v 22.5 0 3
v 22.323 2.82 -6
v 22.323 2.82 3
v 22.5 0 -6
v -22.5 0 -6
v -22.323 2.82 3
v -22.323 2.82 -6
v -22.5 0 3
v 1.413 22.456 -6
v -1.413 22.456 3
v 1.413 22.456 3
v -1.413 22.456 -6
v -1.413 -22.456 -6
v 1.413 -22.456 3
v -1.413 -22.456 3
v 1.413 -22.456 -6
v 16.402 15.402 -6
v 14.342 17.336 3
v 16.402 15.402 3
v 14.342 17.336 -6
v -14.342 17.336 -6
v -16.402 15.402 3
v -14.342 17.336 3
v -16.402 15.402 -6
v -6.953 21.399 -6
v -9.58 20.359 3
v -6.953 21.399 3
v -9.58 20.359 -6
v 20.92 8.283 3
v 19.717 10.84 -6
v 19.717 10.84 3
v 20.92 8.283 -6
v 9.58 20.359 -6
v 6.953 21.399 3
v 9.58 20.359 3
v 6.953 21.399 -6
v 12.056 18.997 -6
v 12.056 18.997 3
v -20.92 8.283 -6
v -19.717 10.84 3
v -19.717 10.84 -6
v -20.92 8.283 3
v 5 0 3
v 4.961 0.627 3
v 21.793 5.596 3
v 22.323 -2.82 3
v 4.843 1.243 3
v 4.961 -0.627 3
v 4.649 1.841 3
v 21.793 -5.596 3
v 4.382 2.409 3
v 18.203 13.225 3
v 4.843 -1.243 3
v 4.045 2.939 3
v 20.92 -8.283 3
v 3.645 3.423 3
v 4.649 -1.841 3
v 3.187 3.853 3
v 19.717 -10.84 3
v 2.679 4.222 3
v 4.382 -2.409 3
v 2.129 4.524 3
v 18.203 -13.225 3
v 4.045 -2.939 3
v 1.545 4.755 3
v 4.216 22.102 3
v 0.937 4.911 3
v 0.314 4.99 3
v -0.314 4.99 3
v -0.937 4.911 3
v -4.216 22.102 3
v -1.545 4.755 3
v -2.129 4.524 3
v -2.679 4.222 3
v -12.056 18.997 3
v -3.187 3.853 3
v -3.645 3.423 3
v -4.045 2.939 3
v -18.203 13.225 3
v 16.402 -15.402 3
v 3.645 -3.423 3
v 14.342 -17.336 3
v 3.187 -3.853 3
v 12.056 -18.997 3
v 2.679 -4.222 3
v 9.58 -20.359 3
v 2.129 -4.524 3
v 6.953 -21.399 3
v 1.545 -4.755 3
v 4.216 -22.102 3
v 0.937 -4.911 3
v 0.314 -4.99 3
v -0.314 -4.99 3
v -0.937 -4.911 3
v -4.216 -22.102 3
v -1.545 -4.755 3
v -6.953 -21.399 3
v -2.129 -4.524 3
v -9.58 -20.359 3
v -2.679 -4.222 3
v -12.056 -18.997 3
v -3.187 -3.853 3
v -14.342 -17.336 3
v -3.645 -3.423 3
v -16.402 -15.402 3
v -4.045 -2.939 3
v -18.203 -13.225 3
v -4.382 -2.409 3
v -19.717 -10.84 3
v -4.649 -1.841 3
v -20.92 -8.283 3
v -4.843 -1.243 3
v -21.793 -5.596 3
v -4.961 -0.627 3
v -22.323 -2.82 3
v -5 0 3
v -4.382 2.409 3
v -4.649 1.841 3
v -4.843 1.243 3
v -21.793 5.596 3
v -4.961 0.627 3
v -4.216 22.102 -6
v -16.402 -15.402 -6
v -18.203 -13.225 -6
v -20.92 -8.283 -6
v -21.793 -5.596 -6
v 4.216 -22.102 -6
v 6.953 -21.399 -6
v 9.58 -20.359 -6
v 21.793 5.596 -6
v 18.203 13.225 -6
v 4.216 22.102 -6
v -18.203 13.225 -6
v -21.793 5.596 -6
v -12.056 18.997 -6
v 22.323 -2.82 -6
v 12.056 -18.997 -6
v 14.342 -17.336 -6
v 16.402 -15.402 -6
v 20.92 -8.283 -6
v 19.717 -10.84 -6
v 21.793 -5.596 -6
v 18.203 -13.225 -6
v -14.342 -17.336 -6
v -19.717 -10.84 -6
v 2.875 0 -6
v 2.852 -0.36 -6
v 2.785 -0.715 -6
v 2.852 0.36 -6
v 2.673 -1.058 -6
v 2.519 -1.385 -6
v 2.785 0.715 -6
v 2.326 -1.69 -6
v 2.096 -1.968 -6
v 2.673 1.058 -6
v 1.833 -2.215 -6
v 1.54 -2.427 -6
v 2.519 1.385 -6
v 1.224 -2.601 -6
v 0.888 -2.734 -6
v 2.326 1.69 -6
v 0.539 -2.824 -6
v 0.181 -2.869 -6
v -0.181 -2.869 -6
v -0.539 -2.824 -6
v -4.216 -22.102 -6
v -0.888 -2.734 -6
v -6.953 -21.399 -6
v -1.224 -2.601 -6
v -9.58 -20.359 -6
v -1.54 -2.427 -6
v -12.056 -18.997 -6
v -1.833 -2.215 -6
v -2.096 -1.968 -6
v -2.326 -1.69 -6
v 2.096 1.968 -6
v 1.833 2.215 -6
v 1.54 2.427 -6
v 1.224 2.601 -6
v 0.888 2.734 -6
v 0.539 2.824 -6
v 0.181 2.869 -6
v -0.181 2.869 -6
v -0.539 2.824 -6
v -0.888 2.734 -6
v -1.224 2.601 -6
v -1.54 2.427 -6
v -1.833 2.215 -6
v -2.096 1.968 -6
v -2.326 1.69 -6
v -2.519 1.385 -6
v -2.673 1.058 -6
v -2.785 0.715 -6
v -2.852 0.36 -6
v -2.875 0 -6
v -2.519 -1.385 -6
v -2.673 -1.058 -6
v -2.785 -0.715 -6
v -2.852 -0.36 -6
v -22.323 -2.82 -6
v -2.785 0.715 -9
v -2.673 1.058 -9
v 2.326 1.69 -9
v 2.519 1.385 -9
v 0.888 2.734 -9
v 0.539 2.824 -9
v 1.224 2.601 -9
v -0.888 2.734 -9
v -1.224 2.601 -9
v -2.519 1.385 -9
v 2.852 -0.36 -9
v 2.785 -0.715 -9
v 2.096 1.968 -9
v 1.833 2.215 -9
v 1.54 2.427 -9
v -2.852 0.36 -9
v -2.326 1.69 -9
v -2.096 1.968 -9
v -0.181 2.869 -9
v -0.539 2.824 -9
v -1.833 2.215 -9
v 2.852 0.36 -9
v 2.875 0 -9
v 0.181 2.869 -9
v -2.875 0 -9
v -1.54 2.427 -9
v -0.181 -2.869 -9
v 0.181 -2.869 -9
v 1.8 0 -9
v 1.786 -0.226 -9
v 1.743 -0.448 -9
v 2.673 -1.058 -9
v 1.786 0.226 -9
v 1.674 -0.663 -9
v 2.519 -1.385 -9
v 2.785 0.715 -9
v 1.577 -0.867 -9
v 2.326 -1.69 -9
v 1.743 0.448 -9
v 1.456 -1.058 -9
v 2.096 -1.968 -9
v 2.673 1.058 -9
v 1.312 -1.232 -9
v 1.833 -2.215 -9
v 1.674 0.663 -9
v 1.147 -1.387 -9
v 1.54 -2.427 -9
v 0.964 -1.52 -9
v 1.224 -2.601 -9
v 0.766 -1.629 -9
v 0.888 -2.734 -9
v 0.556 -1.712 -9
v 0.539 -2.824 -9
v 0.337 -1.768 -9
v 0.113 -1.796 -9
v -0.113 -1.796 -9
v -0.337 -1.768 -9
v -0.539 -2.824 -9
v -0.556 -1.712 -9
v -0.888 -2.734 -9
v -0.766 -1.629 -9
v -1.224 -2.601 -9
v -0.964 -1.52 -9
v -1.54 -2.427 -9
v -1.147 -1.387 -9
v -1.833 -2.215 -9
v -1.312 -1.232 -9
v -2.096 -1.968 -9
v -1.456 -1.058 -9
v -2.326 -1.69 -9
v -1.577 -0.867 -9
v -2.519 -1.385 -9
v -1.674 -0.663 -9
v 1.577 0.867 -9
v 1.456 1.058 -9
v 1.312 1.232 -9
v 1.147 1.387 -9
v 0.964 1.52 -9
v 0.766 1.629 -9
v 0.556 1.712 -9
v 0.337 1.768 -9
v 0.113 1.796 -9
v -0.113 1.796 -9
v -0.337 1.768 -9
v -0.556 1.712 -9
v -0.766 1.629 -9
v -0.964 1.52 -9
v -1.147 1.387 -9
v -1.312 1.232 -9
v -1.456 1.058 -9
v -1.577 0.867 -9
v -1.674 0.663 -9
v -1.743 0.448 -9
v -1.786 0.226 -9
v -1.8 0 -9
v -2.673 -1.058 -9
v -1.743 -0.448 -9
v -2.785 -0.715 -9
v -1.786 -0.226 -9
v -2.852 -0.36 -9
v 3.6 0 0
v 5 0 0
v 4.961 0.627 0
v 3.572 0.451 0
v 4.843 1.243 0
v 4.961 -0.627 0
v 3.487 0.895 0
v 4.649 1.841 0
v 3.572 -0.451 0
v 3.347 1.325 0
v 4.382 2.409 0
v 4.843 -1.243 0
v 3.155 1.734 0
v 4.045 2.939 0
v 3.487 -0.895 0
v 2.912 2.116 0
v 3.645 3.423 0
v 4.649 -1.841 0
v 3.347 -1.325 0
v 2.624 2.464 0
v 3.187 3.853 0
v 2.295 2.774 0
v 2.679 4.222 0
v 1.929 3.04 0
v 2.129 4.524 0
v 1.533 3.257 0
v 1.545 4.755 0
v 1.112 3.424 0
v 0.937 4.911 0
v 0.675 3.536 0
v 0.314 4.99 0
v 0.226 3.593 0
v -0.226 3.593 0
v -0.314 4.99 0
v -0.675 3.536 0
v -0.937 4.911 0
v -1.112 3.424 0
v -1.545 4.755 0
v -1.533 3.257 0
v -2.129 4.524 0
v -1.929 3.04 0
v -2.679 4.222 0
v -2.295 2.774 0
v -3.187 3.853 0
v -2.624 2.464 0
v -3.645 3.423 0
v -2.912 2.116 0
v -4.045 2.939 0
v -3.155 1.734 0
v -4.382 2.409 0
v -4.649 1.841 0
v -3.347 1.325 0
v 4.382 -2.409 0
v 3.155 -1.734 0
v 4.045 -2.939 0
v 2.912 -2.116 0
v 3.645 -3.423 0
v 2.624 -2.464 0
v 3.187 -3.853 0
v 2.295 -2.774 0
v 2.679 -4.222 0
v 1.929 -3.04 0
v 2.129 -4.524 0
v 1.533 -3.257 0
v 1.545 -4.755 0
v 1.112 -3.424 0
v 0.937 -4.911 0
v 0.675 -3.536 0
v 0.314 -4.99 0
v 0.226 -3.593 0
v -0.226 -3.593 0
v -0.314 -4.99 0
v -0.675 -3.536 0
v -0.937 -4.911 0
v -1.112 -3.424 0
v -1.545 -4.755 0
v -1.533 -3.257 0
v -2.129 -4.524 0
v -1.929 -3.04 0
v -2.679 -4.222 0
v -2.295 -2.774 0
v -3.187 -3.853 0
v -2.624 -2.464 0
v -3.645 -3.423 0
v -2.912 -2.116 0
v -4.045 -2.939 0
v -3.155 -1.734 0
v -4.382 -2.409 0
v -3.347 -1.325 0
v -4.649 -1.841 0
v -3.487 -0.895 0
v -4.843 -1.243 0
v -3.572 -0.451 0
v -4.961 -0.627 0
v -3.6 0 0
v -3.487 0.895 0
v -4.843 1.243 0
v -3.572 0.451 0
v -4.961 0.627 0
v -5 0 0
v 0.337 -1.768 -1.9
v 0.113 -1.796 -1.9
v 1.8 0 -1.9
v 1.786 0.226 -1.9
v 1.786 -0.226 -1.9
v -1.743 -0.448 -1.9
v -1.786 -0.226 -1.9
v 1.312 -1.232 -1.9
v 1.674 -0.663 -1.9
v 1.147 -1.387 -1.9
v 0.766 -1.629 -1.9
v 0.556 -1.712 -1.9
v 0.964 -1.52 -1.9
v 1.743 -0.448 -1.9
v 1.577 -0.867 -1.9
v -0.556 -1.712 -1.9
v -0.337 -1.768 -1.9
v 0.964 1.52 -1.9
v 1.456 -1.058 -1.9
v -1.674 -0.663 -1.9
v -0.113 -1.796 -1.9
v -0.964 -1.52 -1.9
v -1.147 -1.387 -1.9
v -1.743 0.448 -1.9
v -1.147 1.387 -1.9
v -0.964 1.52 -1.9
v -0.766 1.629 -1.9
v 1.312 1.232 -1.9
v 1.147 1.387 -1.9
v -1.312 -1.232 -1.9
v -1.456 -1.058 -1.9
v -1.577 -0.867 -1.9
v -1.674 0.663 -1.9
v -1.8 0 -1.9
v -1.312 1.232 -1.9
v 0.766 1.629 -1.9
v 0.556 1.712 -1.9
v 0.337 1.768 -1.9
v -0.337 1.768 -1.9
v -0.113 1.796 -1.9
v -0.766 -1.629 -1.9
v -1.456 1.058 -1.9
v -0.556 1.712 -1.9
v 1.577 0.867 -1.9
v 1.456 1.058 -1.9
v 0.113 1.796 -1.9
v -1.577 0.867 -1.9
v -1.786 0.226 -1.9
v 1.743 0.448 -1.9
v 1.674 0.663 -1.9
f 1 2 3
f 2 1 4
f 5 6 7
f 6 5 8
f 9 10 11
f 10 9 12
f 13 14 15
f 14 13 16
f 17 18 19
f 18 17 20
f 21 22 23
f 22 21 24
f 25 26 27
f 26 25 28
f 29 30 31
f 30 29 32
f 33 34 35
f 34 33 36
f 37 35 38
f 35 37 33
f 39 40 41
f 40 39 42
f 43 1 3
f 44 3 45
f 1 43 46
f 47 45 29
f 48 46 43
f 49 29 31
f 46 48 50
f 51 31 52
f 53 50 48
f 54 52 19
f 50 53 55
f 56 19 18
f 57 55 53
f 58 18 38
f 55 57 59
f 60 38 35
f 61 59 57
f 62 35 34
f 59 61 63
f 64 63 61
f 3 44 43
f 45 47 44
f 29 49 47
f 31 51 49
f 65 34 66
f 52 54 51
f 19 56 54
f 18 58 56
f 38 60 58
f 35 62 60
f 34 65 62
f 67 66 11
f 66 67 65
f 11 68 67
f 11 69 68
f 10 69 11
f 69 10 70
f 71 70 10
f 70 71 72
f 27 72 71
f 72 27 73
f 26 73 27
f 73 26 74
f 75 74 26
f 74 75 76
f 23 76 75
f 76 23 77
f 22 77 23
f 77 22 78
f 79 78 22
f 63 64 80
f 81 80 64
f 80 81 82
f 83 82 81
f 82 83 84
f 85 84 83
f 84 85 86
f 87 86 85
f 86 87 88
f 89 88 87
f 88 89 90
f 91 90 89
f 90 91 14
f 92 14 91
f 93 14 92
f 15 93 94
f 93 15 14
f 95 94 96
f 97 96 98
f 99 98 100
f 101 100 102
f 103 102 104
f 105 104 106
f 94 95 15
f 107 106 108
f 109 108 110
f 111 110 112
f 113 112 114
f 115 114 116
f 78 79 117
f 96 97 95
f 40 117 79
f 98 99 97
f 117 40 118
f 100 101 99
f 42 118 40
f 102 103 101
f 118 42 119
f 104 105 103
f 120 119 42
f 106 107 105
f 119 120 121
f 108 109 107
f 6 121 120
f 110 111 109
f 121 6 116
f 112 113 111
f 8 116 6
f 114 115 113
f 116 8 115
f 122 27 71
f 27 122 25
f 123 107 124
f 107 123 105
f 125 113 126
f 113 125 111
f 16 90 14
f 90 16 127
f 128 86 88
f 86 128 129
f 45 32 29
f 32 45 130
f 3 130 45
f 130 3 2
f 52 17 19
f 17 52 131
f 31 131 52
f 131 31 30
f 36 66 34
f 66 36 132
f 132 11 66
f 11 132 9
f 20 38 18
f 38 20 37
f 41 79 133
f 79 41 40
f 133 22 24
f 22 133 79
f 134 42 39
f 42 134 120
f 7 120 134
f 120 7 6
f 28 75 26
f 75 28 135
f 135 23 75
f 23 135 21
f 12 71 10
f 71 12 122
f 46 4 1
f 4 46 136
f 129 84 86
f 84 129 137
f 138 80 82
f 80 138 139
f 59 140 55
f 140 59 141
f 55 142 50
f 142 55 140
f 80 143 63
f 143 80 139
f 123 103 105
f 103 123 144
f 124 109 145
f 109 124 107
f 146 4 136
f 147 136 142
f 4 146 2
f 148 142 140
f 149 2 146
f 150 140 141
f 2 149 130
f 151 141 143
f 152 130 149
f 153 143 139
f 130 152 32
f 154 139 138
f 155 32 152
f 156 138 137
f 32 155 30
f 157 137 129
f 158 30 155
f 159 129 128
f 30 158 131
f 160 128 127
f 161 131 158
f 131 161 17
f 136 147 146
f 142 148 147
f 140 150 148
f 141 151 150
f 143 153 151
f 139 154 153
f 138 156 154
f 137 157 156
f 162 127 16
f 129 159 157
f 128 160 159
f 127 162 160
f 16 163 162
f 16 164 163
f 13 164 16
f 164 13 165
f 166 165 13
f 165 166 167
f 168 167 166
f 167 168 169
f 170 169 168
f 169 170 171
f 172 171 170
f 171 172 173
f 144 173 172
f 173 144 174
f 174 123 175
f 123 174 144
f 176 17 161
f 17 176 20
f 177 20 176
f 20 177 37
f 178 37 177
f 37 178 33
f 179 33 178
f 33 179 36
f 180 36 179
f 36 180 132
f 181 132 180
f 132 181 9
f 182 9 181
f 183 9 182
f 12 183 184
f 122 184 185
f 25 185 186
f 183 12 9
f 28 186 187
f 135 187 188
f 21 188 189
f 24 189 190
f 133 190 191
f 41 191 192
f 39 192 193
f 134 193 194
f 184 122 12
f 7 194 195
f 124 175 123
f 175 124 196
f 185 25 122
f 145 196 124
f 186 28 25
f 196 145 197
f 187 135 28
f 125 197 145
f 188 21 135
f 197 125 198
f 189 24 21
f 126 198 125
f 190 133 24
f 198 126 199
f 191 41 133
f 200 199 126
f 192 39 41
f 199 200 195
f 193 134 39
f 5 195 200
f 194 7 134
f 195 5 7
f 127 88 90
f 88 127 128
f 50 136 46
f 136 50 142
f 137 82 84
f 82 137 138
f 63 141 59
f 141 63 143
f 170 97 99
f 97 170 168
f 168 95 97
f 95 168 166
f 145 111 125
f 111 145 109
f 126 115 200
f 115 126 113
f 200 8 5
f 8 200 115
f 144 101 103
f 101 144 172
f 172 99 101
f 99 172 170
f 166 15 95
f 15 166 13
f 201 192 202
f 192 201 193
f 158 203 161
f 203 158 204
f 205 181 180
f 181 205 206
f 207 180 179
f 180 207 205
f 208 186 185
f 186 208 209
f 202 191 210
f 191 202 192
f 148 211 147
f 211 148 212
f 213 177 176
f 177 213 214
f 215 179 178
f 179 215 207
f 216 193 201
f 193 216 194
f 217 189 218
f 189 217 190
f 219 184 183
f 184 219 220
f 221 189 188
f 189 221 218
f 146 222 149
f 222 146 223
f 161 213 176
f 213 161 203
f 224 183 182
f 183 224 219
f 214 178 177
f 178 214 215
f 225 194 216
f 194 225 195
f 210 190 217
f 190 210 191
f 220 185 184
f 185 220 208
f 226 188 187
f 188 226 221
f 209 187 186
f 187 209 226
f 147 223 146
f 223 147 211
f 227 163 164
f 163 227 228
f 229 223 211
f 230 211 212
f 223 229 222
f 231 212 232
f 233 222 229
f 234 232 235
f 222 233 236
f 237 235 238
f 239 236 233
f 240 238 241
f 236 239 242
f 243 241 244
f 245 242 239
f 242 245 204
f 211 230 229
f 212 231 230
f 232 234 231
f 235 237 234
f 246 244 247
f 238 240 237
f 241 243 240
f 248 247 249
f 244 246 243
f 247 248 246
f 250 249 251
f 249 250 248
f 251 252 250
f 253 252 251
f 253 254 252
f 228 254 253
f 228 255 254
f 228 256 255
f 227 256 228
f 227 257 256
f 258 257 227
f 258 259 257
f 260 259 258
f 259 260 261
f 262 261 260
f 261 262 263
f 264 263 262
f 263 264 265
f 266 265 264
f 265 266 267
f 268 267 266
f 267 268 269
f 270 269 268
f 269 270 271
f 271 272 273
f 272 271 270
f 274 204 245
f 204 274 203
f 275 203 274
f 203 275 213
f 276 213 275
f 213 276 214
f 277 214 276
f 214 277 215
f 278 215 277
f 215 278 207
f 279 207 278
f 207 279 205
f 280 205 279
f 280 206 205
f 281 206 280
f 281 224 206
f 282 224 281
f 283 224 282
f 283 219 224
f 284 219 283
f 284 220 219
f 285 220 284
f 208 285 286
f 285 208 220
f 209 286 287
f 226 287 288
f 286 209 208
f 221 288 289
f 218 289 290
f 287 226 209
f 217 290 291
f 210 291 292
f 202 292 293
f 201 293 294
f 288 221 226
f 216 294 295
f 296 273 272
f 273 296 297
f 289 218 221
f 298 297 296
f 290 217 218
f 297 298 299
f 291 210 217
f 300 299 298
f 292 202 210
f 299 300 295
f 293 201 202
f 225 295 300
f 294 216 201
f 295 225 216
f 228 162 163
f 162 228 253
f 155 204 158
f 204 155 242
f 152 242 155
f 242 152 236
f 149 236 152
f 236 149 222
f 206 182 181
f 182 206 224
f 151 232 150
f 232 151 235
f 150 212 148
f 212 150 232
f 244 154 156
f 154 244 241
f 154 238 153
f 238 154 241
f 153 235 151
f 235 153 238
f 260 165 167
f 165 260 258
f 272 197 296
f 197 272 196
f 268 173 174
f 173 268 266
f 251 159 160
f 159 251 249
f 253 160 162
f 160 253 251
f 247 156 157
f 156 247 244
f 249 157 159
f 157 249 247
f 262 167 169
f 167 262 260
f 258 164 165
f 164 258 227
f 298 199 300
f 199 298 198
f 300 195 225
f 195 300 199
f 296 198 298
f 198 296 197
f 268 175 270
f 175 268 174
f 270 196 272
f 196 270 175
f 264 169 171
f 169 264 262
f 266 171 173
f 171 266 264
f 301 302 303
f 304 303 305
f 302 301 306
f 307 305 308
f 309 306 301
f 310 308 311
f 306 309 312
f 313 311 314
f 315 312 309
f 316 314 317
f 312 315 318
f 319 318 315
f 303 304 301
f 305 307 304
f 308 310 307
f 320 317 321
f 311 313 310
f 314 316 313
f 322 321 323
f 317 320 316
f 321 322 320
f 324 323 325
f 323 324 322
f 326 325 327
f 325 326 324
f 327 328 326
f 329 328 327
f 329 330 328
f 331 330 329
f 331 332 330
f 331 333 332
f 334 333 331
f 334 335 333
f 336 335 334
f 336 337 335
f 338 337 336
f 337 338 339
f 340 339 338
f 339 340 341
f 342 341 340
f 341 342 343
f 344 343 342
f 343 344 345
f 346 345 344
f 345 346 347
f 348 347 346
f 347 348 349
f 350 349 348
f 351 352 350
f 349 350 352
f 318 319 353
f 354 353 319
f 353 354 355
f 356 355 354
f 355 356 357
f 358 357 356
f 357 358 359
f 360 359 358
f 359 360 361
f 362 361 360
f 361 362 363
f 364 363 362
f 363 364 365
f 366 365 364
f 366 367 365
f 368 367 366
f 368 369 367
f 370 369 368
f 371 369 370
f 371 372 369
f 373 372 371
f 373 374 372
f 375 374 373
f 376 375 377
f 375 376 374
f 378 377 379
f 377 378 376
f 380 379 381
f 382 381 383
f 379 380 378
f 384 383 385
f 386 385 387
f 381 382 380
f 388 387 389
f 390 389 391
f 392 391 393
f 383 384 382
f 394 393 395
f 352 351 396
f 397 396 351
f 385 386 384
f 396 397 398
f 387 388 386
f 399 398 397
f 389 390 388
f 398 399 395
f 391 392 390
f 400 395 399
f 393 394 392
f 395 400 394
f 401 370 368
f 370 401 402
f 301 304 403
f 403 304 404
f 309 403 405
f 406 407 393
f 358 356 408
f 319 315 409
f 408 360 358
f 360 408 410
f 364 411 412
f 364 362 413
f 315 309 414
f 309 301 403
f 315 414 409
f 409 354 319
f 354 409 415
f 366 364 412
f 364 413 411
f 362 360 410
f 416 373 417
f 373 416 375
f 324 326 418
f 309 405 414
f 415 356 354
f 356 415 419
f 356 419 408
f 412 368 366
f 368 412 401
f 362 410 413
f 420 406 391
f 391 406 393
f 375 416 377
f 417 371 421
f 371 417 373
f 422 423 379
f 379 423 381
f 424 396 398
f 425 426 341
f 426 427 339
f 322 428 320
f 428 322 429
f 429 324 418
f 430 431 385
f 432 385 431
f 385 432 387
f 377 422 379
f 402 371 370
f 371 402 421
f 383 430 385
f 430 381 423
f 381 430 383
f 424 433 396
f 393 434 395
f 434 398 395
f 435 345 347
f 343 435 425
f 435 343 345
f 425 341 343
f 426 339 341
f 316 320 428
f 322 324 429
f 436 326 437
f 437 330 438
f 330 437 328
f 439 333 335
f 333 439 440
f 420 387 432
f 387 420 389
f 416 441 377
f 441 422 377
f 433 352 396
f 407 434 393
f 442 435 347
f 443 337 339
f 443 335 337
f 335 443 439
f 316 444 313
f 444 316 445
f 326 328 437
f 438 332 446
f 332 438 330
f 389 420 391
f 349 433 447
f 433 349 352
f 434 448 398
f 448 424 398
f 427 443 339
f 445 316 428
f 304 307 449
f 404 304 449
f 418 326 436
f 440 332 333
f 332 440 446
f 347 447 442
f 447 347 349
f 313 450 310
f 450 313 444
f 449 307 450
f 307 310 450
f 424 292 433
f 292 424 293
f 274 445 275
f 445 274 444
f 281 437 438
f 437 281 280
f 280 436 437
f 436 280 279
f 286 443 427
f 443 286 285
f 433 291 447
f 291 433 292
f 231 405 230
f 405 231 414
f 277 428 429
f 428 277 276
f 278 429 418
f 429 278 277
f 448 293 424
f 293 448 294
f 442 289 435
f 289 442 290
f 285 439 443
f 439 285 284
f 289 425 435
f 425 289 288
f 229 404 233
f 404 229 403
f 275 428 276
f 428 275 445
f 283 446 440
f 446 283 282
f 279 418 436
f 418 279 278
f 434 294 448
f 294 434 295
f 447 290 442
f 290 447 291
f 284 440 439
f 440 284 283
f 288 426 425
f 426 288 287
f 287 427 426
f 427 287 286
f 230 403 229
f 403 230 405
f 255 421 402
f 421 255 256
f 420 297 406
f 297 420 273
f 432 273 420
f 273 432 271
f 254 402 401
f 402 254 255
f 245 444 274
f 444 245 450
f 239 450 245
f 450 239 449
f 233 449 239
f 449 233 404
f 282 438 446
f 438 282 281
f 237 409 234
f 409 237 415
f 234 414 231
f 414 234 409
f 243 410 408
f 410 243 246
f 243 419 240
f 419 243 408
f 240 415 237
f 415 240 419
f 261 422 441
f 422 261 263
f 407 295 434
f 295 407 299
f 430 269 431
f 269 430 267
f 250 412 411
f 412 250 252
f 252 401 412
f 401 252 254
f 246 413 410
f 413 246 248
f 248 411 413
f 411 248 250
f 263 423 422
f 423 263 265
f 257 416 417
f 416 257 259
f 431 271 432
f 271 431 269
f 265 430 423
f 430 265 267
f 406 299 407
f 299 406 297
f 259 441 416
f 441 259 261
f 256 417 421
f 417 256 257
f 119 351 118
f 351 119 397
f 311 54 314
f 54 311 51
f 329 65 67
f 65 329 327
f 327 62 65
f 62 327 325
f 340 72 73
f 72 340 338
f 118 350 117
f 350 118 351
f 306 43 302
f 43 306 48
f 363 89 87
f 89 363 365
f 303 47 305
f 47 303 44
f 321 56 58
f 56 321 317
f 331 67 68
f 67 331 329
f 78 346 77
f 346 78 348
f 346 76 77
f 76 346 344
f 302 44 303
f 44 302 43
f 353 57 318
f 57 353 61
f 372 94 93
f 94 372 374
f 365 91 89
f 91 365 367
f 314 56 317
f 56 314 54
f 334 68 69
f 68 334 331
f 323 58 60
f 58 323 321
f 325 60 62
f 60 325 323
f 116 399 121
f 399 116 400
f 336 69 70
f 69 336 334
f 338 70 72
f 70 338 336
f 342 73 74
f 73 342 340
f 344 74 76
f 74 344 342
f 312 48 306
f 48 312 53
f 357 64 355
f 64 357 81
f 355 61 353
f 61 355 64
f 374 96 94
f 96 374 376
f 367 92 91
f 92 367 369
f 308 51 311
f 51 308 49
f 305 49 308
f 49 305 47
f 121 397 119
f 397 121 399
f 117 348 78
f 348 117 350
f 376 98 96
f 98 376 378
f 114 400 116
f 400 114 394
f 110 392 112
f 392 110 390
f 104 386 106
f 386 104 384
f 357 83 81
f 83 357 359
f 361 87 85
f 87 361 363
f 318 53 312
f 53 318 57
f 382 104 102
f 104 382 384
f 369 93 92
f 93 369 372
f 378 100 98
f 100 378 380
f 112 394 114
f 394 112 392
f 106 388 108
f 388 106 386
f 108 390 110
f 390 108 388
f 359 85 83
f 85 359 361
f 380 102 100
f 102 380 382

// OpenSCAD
$fn = 50;

difference() {
	union() {
		translate(v = [0, 0, -6.0]) {
			cylinder(h = 9, r = 22.5);
		}
		#translate(v = [0, 0, -9.0]) {
			cylinder(h = 9, r = 2.875);
		}
	}
	union() {
		translate(v = [0, 0, 0]) {
			rotate(a = [0, 0, 0]) {
				difference() {
					union() {
						translate(v = [0, 0, -9.0]) {
							cylinder(h = 9, r = 1.5);
						}
						translate(v = [0, 0, -1.9]) {
							cylinder(h = 1.9, r1 = 1.8, r2 = 3.6);
						}
						translate(v = [0, 0, -9.0]) {
							cylinder(h = 9, r = 1.8);
						}
						translate(v = [0, 0, -9.0]) {
							cylinder(h = 9, r = 1.5);
						}
					}
					union();
				}
			}
		}
		#cylinder(h = 3, r = 5.0);
	}
}
